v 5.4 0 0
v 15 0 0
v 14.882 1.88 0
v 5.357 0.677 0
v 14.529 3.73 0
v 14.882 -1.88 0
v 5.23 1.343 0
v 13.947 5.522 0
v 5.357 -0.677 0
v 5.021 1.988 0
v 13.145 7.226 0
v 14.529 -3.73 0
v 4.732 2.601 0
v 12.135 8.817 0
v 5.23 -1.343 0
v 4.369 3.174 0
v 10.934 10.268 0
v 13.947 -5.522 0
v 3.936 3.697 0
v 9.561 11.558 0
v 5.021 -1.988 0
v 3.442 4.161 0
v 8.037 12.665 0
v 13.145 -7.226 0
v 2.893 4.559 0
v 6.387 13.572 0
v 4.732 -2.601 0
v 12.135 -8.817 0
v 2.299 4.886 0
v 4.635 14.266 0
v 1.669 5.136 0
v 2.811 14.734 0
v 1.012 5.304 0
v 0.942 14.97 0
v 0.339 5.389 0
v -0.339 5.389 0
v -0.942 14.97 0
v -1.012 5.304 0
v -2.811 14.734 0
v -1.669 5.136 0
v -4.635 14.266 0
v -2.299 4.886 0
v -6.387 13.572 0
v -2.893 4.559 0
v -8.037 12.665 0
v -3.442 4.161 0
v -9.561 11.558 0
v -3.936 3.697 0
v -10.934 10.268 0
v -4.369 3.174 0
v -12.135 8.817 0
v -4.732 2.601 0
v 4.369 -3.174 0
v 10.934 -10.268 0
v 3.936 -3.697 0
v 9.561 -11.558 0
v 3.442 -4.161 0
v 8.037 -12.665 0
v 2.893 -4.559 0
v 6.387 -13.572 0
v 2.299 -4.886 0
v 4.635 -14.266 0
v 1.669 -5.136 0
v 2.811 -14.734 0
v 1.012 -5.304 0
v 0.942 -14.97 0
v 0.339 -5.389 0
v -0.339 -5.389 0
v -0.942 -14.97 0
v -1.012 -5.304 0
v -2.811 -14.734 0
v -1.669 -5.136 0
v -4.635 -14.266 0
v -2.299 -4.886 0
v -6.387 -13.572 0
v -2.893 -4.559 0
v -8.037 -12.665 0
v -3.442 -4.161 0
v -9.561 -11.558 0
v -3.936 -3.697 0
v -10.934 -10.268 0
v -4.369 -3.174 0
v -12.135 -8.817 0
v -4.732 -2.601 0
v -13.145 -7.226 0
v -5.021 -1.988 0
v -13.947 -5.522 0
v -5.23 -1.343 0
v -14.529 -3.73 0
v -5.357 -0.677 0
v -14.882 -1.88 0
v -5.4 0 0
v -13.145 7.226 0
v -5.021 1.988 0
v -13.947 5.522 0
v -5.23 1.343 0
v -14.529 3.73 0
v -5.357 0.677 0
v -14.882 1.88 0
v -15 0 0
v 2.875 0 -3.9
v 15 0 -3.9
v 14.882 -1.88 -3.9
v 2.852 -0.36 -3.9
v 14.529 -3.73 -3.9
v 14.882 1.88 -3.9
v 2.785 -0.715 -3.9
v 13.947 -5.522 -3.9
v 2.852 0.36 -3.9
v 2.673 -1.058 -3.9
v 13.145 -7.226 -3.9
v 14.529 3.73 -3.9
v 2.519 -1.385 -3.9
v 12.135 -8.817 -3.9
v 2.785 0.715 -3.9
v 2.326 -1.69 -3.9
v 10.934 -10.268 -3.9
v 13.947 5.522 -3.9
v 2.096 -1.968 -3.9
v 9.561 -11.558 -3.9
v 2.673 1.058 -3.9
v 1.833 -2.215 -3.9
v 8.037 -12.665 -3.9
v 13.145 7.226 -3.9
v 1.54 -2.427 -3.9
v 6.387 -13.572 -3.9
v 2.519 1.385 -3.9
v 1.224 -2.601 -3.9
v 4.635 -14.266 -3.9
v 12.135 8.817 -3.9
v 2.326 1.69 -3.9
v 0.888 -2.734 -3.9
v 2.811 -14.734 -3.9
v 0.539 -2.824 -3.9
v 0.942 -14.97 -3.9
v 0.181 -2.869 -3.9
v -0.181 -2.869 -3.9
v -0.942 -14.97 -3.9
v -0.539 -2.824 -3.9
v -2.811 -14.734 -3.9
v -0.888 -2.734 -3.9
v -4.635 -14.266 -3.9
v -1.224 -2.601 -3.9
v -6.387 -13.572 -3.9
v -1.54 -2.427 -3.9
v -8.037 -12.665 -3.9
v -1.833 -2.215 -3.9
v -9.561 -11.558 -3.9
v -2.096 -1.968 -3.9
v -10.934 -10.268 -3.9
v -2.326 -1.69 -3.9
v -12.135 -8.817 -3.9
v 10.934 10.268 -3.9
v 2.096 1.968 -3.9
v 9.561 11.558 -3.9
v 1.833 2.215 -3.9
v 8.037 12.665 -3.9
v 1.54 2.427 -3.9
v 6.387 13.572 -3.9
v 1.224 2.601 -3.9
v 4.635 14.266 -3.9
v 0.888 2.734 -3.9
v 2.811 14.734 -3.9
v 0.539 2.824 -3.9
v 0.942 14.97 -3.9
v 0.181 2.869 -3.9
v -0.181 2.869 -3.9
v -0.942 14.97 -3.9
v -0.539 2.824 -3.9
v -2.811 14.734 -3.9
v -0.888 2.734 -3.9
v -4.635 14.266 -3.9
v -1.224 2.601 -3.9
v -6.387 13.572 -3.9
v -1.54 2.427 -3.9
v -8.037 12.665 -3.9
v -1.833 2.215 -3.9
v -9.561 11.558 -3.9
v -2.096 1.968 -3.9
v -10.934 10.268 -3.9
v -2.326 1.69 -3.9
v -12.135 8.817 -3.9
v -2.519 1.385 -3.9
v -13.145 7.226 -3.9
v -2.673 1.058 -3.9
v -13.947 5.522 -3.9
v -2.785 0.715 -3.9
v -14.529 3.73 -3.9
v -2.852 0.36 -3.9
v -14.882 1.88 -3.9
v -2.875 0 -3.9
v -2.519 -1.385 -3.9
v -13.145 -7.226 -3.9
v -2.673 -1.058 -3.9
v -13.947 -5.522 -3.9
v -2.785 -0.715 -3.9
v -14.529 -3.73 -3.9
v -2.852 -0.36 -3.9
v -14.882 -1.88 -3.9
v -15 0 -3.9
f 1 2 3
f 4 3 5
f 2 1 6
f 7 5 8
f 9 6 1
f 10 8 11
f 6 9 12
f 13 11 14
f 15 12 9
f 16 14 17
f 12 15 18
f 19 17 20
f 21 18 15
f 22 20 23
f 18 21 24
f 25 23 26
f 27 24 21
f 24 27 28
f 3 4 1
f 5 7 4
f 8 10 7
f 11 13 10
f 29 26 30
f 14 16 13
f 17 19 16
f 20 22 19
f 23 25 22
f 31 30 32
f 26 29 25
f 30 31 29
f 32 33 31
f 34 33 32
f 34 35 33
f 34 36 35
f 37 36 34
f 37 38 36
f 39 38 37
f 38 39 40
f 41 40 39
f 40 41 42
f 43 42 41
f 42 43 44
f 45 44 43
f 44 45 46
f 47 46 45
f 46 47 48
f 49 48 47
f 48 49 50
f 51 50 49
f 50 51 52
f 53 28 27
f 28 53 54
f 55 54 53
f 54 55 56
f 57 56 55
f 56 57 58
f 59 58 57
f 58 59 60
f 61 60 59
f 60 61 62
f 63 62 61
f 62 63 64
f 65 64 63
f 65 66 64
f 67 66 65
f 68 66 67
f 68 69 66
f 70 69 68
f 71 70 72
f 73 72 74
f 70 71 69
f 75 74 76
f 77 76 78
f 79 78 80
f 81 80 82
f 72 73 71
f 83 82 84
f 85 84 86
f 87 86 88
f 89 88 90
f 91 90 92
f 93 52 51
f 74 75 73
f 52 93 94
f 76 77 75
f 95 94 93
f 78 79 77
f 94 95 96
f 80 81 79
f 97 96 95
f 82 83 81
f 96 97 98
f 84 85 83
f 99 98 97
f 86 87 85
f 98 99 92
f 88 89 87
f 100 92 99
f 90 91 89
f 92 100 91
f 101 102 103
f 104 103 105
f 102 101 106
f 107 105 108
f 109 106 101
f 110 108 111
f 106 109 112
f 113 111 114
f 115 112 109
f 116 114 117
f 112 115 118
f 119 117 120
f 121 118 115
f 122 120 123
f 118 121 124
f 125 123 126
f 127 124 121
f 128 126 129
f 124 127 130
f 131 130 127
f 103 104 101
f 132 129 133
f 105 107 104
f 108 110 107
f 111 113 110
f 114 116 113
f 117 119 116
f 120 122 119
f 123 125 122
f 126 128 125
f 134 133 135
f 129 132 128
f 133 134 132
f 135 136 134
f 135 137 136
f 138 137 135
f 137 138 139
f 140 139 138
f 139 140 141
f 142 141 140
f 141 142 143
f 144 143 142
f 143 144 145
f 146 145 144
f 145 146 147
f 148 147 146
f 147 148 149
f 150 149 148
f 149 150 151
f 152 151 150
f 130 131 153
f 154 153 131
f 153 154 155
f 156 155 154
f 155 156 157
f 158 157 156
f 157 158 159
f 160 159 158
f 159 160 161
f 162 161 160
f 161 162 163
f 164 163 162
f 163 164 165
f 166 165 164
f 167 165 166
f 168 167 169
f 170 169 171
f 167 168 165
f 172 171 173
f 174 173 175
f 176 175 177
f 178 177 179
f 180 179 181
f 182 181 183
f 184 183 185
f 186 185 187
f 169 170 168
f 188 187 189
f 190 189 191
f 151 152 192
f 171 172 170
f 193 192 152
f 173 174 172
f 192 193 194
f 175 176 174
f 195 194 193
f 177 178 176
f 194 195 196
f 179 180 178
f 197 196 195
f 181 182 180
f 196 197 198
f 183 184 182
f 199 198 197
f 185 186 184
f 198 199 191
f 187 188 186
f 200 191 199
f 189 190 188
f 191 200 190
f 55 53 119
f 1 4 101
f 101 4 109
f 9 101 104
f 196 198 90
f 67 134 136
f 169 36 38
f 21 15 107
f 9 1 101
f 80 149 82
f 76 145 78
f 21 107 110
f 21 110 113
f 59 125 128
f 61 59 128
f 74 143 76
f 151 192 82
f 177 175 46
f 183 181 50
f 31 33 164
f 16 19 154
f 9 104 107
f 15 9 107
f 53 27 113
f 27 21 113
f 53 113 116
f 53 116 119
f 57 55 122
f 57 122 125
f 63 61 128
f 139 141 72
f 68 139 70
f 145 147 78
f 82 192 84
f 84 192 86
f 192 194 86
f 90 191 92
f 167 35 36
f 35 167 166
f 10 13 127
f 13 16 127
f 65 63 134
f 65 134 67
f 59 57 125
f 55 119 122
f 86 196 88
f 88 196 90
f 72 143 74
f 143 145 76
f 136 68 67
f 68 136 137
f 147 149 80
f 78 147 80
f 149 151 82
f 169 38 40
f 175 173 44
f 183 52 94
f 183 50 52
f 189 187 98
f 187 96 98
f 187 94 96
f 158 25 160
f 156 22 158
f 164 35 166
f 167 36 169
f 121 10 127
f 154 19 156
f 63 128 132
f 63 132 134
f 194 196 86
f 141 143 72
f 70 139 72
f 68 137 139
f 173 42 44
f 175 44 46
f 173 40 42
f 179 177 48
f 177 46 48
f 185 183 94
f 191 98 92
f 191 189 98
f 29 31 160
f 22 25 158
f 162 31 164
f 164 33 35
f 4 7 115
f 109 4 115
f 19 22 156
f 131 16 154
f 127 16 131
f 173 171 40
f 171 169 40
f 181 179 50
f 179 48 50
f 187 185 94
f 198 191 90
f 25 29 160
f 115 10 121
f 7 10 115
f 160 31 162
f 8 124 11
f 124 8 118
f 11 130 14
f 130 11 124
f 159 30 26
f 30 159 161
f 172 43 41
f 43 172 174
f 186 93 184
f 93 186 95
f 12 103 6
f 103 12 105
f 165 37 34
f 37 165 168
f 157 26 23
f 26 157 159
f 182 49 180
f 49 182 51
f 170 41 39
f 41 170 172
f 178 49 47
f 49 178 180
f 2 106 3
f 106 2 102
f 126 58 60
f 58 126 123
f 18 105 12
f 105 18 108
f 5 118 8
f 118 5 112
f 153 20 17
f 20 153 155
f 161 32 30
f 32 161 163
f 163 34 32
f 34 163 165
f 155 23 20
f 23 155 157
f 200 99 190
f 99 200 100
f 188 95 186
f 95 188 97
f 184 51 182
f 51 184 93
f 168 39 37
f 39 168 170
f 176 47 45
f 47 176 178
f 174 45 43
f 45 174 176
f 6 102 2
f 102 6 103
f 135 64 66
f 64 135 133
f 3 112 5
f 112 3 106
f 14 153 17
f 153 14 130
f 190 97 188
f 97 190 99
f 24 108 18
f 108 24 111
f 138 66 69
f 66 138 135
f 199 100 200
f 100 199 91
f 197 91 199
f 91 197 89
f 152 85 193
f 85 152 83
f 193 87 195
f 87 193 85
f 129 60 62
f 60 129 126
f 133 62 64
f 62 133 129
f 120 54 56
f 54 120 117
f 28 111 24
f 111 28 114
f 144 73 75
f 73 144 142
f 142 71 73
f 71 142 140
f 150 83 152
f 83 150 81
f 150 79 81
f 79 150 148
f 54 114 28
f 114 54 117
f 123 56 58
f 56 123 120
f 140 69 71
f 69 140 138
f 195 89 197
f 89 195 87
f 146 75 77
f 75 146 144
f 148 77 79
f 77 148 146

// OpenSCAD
$fn = 50;


difference() {
	union() {
		translate(v = [0, 0, -3.9000000000]) {
			cylinder(h = 3.9000000000, r = 15.0000000000);
		}
	}
	union() {
		translate(v = [0, 0, 0]) {
			rotate(a = [0, 0, 0]) {
				difference() {
					union() {
						translate(v = [0, 0, -3.9000000000]) {
							cylinder(h = 3.9000000000, r = 2.6000000000);
						}
						translate(v = [0, 0, -3.9000000000]) {
							cylinder(h = 3.9000000000, r1 = 2.8750000000, r2 = 5.4000000000);
						}
						translate(v = [0, 0, -3.9000000000]) {
							cylinder(h = 3.9000000000, r = 2.8750000000);
						}
						translate(v = [0, 0, -3.9000000000]) {
							cylinder(h = 3.9000000000, r = 2.6000000000);
						}
					}
					union();
				}
			}
		}
	}
}
